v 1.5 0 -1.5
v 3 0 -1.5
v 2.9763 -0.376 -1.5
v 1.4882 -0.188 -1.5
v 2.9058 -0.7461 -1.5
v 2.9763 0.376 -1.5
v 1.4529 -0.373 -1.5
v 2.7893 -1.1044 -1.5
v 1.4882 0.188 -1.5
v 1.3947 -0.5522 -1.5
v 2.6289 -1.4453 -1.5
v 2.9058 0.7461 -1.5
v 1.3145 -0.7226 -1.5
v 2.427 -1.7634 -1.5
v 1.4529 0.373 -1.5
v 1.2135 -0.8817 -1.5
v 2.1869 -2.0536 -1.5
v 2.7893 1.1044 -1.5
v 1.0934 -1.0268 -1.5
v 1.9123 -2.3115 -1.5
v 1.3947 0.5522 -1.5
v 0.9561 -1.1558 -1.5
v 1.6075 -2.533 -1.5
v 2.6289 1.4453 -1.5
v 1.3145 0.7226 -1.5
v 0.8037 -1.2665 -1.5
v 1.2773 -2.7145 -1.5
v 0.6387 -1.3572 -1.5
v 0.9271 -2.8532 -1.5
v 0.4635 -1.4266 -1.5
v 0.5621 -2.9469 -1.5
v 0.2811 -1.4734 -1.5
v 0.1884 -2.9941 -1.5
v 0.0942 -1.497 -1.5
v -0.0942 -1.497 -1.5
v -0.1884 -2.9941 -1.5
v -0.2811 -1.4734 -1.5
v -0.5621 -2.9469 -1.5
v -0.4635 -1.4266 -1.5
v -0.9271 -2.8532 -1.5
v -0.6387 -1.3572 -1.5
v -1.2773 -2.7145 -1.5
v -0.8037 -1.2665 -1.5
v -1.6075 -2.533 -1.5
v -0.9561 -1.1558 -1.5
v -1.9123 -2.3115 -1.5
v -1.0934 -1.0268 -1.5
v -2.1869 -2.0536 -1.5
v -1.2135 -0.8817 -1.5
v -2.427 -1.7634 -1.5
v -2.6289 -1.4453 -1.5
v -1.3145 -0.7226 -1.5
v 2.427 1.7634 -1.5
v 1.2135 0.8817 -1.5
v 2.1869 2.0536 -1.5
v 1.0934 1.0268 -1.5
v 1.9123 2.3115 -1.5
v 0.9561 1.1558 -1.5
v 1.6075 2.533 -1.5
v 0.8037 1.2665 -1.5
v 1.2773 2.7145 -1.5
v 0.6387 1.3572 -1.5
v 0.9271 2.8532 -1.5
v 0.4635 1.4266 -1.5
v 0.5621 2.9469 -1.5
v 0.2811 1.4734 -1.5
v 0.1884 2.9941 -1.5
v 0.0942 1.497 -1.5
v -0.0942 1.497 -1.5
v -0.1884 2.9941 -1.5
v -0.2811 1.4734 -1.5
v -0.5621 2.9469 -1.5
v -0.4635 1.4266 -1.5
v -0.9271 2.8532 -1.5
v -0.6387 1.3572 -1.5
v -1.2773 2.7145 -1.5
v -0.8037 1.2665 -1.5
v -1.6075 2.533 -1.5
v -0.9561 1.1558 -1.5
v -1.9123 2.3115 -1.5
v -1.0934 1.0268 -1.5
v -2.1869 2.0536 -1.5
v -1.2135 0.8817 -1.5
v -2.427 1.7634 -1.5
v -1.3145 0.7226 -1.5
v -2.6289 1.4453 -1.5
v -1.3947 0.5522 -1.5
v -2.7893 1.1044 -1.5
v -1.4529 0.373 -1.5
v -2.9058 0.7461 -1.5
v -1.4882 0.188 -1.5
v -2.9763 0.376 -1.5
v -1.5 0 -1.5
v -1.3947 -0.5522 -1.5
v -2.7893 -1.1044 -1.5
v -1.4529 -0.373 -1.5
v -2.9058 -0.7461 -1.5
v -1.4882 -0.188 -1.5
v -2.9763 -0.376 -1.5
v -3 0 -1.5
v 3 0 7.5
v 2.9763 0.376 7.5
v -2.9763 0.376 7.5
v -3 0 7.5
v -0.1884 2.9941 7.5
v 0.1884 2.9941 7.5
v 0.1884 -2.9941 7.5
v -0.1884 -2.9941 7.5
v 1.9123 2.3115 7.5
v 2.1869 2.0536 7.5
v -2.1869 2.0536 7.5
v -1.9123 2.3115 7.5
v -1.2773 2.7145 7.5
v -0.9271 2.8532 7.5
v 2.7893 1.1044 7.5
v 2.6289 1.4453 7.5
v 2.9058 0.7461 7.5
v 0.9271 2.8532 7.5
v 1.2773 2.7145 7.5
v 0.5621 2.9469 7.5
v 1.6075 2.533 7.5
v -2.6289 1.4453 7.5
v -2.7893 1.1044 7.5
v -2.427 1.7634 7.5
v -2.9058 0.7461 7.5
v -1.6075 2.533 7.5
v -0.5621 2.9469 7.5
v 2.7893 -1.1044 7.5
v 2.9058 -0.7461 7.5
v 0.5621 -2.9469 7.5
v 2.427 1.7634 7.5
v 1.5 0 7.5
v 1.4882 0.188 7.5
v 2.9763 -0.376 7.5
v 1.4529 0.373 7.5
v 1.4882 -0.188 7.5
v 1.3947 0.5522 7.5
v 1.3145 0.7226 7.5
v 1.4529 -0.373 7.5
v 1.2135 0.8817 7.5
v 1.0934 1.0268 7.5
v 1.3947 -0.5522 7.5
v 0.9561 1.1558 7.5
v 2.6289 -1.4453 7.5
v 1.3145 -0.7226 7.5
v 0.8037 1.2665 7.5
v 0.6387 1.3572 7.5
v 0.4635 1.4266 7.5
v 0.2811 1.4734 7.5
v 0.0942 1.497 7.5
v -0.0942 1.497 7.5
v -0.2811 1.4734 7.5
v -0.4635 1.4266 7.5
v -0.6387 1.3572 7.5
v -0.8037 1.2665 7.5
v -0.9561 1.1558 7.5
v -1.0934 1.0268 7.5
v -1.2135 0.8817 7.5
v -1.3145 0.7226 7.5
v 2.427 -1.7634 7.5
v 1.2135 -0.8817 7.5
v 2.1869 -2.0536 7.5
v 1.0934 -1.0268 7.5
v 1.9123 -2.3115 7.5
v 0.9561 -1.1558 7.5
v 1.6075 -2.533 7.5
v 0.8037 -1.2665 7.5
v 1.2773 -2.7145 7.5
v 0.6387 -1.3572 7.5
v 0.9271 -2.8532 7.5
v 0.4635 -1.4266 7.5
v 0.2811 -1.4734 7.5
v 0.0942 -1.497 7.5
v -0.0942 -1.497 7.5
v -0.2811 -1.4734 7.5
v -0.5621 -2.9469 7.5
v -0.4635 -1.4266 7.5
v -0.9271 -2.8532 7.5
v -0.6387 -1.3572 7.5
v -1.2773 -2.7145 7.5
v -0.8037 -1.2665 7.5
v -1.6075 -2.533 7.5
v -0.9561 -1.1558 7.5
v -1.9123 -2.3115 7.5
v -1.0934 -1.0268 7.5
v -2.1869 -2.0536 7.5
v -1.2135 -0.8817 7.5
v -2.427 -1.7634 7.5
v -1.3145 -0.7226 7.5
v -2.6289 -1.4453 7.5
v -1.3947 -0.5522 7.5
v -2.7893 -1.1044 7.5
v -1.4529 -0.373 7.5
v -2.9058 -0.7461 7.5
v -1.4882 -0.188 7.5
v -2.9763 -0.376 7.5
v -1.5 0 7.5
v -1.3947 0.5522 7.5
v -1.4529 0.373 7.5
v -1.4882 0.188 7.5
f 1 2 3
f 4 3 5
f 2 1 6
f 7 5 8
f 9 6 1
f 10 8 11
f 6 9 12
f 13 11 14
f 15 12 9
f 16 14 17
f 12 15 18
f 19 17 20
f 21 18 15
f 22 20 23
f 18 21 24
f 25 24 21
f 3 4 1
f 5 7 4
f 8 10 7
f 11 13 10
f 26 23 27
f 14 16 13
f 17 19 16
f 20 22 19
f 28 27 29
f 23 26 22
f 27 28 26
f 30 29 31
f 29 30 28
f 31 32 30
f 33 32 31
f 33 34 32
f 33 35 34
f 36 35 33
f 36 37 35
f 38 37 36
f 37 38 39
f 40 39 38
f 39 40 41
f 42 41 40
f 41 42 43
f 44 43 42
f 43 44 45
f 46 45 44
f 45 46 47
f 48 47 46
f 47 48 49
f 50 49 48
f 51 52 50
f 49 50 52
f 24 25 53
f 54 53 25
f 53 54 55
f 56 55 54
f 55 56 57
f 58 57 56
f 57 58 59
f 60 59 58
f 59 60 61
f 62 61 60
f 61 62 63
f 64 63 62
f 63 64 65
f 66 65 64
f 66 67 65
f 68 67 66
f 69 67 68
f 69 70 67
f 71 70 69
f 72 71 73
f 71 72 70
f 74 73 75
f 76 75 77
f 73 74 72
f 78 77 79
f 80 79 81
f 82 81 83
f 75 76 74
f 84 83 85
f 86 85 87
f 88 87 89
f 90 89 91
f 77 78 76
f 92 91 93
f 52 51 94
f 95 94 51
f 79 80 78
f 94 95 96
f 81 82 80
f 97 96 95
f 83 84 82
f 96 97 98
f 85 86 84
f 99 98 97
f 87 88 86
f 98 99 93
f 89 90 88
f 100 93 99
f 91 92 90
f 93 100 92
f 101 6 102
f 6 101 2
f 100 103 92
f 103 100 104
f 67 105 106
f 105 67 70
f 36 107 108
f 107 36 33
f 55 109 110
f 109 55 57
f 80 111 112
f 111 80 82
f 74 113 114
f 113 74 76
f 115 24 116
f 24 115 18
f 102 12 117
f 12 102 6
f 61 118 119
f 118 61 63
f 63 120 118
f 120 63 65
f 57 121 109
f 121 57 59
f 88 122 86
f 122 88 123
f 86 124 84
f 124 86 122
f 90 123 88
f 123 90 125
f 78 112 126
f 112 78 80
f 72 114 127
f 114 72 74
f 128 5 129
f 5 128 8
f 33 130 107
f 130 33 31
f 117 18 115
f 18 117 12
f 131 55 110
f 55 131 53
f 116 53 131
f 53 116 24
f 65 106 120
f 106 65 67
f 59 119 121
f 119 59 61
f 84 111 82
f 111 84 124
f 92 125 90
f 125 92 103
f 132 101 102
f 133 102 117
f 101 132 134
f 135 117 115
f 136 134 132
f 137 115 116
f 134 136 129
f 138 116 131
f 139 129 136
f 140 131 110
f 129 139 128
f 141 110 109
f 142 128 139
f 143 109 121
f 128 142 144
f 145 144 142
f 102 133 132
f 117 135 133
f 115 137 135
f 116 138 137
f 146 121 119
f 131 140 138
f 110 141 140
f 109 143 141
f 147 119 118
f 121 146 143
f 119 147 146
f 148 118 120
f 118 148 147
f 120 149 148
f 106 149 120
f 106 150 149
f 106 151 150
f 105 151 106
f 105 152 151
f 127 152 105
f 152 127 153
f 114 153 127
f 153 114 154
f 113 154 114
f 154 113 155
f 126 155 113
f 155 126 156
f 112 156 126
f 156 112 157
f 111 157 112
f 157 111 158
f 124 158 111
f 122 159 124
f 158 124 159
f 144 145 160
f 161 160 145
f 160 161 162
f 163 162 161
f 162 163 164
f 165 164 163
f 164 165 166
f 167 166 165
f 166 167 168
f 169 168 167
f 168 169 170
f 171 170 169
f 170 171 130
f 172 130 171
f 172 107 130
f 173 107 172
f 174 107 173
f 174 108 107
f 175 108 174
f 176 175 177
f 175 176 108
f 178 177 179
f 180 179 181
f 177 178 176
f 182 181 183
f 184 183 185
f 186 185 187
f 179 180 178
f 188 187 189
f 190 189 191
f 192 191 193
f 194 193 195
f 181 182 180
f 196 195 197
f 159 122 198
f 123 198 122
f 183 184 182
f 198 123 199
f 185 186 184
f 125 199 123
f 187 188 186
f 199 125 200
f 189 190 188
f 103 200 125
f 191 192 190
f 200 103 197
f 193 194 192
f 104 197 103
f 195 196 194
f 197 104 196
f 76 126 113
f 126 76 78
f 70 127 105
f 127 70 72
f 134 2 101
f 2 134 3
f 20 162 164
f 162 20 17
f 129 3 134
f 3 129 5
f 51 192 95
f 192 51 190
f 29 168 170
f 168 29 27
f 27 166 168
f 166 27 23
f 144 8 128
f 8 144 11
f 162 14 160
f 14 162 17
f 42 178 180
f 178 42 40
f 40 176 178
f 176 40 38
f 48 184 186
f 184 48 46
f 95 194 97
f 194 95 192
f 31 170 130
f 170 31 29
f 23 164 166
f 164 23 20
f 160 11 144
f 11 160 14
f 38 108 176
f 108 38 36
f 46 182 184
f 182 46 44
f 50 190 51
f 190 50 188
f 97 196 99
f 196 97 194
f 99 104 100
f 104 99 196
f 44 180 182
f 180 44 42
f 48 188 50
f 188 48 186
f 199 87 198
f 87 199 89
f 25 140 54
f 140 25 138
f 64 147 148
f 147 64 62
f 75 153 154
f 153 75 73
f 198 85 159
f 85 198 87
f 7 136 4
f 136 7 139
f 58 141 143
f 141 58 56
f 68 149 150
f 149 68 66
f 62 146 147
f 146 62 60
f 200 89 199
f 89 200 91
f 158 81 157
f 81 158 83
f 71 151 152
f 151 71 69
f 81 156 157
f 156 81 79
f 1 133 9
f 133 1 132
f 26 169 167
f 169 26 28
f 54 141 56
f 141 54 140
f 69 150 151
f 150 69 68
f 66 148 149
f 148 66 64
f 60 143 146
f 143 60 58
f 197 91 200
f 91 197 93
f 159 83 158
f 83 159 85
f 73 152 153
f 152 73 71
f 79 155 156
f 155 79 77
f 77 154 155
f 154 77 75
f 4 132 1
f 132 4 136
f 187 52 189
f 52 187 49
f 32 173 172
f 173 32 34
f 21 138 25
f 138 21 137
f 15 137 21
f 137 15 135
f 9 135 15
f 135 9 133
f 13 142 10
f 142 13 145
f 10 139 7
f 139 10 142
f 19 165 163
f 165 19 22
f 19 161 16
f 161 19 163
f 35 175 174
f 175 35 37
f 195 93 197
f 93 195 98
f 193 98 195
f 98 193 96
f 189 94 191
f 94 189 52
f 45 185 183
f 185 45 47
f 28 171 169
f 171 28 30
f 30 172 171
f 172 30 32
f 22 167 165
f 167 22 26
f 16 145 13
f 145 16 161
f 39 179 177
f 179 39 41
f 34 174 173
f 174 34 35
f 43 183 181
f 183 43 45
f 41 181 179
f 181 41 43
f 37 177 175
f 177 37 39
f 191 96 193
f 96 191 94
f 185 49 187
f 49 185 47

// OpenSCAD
$fn = 50;


difference() {
	union() {
		translate(v = [0, 0, -1.5000000000]) {
			rotate(a = [0, 0, 0]) {
				cylinder(h = 3, r = 1.0000000000);
			}
		}
		translate(v = [0, 0, -1.5000000000]) {
			rotate(a = [0, 0, 0]) {
				cylinder(h = 9, r = 3.0000000000);
			}
		}
	}
	union() {
		translate(v = [0, 0, -125.0000000000]) {
			rotate(a = [0, 0, 0]) {
				cylinder(h = 250, r = 1.5000000000);
			}
		}
	}
}
